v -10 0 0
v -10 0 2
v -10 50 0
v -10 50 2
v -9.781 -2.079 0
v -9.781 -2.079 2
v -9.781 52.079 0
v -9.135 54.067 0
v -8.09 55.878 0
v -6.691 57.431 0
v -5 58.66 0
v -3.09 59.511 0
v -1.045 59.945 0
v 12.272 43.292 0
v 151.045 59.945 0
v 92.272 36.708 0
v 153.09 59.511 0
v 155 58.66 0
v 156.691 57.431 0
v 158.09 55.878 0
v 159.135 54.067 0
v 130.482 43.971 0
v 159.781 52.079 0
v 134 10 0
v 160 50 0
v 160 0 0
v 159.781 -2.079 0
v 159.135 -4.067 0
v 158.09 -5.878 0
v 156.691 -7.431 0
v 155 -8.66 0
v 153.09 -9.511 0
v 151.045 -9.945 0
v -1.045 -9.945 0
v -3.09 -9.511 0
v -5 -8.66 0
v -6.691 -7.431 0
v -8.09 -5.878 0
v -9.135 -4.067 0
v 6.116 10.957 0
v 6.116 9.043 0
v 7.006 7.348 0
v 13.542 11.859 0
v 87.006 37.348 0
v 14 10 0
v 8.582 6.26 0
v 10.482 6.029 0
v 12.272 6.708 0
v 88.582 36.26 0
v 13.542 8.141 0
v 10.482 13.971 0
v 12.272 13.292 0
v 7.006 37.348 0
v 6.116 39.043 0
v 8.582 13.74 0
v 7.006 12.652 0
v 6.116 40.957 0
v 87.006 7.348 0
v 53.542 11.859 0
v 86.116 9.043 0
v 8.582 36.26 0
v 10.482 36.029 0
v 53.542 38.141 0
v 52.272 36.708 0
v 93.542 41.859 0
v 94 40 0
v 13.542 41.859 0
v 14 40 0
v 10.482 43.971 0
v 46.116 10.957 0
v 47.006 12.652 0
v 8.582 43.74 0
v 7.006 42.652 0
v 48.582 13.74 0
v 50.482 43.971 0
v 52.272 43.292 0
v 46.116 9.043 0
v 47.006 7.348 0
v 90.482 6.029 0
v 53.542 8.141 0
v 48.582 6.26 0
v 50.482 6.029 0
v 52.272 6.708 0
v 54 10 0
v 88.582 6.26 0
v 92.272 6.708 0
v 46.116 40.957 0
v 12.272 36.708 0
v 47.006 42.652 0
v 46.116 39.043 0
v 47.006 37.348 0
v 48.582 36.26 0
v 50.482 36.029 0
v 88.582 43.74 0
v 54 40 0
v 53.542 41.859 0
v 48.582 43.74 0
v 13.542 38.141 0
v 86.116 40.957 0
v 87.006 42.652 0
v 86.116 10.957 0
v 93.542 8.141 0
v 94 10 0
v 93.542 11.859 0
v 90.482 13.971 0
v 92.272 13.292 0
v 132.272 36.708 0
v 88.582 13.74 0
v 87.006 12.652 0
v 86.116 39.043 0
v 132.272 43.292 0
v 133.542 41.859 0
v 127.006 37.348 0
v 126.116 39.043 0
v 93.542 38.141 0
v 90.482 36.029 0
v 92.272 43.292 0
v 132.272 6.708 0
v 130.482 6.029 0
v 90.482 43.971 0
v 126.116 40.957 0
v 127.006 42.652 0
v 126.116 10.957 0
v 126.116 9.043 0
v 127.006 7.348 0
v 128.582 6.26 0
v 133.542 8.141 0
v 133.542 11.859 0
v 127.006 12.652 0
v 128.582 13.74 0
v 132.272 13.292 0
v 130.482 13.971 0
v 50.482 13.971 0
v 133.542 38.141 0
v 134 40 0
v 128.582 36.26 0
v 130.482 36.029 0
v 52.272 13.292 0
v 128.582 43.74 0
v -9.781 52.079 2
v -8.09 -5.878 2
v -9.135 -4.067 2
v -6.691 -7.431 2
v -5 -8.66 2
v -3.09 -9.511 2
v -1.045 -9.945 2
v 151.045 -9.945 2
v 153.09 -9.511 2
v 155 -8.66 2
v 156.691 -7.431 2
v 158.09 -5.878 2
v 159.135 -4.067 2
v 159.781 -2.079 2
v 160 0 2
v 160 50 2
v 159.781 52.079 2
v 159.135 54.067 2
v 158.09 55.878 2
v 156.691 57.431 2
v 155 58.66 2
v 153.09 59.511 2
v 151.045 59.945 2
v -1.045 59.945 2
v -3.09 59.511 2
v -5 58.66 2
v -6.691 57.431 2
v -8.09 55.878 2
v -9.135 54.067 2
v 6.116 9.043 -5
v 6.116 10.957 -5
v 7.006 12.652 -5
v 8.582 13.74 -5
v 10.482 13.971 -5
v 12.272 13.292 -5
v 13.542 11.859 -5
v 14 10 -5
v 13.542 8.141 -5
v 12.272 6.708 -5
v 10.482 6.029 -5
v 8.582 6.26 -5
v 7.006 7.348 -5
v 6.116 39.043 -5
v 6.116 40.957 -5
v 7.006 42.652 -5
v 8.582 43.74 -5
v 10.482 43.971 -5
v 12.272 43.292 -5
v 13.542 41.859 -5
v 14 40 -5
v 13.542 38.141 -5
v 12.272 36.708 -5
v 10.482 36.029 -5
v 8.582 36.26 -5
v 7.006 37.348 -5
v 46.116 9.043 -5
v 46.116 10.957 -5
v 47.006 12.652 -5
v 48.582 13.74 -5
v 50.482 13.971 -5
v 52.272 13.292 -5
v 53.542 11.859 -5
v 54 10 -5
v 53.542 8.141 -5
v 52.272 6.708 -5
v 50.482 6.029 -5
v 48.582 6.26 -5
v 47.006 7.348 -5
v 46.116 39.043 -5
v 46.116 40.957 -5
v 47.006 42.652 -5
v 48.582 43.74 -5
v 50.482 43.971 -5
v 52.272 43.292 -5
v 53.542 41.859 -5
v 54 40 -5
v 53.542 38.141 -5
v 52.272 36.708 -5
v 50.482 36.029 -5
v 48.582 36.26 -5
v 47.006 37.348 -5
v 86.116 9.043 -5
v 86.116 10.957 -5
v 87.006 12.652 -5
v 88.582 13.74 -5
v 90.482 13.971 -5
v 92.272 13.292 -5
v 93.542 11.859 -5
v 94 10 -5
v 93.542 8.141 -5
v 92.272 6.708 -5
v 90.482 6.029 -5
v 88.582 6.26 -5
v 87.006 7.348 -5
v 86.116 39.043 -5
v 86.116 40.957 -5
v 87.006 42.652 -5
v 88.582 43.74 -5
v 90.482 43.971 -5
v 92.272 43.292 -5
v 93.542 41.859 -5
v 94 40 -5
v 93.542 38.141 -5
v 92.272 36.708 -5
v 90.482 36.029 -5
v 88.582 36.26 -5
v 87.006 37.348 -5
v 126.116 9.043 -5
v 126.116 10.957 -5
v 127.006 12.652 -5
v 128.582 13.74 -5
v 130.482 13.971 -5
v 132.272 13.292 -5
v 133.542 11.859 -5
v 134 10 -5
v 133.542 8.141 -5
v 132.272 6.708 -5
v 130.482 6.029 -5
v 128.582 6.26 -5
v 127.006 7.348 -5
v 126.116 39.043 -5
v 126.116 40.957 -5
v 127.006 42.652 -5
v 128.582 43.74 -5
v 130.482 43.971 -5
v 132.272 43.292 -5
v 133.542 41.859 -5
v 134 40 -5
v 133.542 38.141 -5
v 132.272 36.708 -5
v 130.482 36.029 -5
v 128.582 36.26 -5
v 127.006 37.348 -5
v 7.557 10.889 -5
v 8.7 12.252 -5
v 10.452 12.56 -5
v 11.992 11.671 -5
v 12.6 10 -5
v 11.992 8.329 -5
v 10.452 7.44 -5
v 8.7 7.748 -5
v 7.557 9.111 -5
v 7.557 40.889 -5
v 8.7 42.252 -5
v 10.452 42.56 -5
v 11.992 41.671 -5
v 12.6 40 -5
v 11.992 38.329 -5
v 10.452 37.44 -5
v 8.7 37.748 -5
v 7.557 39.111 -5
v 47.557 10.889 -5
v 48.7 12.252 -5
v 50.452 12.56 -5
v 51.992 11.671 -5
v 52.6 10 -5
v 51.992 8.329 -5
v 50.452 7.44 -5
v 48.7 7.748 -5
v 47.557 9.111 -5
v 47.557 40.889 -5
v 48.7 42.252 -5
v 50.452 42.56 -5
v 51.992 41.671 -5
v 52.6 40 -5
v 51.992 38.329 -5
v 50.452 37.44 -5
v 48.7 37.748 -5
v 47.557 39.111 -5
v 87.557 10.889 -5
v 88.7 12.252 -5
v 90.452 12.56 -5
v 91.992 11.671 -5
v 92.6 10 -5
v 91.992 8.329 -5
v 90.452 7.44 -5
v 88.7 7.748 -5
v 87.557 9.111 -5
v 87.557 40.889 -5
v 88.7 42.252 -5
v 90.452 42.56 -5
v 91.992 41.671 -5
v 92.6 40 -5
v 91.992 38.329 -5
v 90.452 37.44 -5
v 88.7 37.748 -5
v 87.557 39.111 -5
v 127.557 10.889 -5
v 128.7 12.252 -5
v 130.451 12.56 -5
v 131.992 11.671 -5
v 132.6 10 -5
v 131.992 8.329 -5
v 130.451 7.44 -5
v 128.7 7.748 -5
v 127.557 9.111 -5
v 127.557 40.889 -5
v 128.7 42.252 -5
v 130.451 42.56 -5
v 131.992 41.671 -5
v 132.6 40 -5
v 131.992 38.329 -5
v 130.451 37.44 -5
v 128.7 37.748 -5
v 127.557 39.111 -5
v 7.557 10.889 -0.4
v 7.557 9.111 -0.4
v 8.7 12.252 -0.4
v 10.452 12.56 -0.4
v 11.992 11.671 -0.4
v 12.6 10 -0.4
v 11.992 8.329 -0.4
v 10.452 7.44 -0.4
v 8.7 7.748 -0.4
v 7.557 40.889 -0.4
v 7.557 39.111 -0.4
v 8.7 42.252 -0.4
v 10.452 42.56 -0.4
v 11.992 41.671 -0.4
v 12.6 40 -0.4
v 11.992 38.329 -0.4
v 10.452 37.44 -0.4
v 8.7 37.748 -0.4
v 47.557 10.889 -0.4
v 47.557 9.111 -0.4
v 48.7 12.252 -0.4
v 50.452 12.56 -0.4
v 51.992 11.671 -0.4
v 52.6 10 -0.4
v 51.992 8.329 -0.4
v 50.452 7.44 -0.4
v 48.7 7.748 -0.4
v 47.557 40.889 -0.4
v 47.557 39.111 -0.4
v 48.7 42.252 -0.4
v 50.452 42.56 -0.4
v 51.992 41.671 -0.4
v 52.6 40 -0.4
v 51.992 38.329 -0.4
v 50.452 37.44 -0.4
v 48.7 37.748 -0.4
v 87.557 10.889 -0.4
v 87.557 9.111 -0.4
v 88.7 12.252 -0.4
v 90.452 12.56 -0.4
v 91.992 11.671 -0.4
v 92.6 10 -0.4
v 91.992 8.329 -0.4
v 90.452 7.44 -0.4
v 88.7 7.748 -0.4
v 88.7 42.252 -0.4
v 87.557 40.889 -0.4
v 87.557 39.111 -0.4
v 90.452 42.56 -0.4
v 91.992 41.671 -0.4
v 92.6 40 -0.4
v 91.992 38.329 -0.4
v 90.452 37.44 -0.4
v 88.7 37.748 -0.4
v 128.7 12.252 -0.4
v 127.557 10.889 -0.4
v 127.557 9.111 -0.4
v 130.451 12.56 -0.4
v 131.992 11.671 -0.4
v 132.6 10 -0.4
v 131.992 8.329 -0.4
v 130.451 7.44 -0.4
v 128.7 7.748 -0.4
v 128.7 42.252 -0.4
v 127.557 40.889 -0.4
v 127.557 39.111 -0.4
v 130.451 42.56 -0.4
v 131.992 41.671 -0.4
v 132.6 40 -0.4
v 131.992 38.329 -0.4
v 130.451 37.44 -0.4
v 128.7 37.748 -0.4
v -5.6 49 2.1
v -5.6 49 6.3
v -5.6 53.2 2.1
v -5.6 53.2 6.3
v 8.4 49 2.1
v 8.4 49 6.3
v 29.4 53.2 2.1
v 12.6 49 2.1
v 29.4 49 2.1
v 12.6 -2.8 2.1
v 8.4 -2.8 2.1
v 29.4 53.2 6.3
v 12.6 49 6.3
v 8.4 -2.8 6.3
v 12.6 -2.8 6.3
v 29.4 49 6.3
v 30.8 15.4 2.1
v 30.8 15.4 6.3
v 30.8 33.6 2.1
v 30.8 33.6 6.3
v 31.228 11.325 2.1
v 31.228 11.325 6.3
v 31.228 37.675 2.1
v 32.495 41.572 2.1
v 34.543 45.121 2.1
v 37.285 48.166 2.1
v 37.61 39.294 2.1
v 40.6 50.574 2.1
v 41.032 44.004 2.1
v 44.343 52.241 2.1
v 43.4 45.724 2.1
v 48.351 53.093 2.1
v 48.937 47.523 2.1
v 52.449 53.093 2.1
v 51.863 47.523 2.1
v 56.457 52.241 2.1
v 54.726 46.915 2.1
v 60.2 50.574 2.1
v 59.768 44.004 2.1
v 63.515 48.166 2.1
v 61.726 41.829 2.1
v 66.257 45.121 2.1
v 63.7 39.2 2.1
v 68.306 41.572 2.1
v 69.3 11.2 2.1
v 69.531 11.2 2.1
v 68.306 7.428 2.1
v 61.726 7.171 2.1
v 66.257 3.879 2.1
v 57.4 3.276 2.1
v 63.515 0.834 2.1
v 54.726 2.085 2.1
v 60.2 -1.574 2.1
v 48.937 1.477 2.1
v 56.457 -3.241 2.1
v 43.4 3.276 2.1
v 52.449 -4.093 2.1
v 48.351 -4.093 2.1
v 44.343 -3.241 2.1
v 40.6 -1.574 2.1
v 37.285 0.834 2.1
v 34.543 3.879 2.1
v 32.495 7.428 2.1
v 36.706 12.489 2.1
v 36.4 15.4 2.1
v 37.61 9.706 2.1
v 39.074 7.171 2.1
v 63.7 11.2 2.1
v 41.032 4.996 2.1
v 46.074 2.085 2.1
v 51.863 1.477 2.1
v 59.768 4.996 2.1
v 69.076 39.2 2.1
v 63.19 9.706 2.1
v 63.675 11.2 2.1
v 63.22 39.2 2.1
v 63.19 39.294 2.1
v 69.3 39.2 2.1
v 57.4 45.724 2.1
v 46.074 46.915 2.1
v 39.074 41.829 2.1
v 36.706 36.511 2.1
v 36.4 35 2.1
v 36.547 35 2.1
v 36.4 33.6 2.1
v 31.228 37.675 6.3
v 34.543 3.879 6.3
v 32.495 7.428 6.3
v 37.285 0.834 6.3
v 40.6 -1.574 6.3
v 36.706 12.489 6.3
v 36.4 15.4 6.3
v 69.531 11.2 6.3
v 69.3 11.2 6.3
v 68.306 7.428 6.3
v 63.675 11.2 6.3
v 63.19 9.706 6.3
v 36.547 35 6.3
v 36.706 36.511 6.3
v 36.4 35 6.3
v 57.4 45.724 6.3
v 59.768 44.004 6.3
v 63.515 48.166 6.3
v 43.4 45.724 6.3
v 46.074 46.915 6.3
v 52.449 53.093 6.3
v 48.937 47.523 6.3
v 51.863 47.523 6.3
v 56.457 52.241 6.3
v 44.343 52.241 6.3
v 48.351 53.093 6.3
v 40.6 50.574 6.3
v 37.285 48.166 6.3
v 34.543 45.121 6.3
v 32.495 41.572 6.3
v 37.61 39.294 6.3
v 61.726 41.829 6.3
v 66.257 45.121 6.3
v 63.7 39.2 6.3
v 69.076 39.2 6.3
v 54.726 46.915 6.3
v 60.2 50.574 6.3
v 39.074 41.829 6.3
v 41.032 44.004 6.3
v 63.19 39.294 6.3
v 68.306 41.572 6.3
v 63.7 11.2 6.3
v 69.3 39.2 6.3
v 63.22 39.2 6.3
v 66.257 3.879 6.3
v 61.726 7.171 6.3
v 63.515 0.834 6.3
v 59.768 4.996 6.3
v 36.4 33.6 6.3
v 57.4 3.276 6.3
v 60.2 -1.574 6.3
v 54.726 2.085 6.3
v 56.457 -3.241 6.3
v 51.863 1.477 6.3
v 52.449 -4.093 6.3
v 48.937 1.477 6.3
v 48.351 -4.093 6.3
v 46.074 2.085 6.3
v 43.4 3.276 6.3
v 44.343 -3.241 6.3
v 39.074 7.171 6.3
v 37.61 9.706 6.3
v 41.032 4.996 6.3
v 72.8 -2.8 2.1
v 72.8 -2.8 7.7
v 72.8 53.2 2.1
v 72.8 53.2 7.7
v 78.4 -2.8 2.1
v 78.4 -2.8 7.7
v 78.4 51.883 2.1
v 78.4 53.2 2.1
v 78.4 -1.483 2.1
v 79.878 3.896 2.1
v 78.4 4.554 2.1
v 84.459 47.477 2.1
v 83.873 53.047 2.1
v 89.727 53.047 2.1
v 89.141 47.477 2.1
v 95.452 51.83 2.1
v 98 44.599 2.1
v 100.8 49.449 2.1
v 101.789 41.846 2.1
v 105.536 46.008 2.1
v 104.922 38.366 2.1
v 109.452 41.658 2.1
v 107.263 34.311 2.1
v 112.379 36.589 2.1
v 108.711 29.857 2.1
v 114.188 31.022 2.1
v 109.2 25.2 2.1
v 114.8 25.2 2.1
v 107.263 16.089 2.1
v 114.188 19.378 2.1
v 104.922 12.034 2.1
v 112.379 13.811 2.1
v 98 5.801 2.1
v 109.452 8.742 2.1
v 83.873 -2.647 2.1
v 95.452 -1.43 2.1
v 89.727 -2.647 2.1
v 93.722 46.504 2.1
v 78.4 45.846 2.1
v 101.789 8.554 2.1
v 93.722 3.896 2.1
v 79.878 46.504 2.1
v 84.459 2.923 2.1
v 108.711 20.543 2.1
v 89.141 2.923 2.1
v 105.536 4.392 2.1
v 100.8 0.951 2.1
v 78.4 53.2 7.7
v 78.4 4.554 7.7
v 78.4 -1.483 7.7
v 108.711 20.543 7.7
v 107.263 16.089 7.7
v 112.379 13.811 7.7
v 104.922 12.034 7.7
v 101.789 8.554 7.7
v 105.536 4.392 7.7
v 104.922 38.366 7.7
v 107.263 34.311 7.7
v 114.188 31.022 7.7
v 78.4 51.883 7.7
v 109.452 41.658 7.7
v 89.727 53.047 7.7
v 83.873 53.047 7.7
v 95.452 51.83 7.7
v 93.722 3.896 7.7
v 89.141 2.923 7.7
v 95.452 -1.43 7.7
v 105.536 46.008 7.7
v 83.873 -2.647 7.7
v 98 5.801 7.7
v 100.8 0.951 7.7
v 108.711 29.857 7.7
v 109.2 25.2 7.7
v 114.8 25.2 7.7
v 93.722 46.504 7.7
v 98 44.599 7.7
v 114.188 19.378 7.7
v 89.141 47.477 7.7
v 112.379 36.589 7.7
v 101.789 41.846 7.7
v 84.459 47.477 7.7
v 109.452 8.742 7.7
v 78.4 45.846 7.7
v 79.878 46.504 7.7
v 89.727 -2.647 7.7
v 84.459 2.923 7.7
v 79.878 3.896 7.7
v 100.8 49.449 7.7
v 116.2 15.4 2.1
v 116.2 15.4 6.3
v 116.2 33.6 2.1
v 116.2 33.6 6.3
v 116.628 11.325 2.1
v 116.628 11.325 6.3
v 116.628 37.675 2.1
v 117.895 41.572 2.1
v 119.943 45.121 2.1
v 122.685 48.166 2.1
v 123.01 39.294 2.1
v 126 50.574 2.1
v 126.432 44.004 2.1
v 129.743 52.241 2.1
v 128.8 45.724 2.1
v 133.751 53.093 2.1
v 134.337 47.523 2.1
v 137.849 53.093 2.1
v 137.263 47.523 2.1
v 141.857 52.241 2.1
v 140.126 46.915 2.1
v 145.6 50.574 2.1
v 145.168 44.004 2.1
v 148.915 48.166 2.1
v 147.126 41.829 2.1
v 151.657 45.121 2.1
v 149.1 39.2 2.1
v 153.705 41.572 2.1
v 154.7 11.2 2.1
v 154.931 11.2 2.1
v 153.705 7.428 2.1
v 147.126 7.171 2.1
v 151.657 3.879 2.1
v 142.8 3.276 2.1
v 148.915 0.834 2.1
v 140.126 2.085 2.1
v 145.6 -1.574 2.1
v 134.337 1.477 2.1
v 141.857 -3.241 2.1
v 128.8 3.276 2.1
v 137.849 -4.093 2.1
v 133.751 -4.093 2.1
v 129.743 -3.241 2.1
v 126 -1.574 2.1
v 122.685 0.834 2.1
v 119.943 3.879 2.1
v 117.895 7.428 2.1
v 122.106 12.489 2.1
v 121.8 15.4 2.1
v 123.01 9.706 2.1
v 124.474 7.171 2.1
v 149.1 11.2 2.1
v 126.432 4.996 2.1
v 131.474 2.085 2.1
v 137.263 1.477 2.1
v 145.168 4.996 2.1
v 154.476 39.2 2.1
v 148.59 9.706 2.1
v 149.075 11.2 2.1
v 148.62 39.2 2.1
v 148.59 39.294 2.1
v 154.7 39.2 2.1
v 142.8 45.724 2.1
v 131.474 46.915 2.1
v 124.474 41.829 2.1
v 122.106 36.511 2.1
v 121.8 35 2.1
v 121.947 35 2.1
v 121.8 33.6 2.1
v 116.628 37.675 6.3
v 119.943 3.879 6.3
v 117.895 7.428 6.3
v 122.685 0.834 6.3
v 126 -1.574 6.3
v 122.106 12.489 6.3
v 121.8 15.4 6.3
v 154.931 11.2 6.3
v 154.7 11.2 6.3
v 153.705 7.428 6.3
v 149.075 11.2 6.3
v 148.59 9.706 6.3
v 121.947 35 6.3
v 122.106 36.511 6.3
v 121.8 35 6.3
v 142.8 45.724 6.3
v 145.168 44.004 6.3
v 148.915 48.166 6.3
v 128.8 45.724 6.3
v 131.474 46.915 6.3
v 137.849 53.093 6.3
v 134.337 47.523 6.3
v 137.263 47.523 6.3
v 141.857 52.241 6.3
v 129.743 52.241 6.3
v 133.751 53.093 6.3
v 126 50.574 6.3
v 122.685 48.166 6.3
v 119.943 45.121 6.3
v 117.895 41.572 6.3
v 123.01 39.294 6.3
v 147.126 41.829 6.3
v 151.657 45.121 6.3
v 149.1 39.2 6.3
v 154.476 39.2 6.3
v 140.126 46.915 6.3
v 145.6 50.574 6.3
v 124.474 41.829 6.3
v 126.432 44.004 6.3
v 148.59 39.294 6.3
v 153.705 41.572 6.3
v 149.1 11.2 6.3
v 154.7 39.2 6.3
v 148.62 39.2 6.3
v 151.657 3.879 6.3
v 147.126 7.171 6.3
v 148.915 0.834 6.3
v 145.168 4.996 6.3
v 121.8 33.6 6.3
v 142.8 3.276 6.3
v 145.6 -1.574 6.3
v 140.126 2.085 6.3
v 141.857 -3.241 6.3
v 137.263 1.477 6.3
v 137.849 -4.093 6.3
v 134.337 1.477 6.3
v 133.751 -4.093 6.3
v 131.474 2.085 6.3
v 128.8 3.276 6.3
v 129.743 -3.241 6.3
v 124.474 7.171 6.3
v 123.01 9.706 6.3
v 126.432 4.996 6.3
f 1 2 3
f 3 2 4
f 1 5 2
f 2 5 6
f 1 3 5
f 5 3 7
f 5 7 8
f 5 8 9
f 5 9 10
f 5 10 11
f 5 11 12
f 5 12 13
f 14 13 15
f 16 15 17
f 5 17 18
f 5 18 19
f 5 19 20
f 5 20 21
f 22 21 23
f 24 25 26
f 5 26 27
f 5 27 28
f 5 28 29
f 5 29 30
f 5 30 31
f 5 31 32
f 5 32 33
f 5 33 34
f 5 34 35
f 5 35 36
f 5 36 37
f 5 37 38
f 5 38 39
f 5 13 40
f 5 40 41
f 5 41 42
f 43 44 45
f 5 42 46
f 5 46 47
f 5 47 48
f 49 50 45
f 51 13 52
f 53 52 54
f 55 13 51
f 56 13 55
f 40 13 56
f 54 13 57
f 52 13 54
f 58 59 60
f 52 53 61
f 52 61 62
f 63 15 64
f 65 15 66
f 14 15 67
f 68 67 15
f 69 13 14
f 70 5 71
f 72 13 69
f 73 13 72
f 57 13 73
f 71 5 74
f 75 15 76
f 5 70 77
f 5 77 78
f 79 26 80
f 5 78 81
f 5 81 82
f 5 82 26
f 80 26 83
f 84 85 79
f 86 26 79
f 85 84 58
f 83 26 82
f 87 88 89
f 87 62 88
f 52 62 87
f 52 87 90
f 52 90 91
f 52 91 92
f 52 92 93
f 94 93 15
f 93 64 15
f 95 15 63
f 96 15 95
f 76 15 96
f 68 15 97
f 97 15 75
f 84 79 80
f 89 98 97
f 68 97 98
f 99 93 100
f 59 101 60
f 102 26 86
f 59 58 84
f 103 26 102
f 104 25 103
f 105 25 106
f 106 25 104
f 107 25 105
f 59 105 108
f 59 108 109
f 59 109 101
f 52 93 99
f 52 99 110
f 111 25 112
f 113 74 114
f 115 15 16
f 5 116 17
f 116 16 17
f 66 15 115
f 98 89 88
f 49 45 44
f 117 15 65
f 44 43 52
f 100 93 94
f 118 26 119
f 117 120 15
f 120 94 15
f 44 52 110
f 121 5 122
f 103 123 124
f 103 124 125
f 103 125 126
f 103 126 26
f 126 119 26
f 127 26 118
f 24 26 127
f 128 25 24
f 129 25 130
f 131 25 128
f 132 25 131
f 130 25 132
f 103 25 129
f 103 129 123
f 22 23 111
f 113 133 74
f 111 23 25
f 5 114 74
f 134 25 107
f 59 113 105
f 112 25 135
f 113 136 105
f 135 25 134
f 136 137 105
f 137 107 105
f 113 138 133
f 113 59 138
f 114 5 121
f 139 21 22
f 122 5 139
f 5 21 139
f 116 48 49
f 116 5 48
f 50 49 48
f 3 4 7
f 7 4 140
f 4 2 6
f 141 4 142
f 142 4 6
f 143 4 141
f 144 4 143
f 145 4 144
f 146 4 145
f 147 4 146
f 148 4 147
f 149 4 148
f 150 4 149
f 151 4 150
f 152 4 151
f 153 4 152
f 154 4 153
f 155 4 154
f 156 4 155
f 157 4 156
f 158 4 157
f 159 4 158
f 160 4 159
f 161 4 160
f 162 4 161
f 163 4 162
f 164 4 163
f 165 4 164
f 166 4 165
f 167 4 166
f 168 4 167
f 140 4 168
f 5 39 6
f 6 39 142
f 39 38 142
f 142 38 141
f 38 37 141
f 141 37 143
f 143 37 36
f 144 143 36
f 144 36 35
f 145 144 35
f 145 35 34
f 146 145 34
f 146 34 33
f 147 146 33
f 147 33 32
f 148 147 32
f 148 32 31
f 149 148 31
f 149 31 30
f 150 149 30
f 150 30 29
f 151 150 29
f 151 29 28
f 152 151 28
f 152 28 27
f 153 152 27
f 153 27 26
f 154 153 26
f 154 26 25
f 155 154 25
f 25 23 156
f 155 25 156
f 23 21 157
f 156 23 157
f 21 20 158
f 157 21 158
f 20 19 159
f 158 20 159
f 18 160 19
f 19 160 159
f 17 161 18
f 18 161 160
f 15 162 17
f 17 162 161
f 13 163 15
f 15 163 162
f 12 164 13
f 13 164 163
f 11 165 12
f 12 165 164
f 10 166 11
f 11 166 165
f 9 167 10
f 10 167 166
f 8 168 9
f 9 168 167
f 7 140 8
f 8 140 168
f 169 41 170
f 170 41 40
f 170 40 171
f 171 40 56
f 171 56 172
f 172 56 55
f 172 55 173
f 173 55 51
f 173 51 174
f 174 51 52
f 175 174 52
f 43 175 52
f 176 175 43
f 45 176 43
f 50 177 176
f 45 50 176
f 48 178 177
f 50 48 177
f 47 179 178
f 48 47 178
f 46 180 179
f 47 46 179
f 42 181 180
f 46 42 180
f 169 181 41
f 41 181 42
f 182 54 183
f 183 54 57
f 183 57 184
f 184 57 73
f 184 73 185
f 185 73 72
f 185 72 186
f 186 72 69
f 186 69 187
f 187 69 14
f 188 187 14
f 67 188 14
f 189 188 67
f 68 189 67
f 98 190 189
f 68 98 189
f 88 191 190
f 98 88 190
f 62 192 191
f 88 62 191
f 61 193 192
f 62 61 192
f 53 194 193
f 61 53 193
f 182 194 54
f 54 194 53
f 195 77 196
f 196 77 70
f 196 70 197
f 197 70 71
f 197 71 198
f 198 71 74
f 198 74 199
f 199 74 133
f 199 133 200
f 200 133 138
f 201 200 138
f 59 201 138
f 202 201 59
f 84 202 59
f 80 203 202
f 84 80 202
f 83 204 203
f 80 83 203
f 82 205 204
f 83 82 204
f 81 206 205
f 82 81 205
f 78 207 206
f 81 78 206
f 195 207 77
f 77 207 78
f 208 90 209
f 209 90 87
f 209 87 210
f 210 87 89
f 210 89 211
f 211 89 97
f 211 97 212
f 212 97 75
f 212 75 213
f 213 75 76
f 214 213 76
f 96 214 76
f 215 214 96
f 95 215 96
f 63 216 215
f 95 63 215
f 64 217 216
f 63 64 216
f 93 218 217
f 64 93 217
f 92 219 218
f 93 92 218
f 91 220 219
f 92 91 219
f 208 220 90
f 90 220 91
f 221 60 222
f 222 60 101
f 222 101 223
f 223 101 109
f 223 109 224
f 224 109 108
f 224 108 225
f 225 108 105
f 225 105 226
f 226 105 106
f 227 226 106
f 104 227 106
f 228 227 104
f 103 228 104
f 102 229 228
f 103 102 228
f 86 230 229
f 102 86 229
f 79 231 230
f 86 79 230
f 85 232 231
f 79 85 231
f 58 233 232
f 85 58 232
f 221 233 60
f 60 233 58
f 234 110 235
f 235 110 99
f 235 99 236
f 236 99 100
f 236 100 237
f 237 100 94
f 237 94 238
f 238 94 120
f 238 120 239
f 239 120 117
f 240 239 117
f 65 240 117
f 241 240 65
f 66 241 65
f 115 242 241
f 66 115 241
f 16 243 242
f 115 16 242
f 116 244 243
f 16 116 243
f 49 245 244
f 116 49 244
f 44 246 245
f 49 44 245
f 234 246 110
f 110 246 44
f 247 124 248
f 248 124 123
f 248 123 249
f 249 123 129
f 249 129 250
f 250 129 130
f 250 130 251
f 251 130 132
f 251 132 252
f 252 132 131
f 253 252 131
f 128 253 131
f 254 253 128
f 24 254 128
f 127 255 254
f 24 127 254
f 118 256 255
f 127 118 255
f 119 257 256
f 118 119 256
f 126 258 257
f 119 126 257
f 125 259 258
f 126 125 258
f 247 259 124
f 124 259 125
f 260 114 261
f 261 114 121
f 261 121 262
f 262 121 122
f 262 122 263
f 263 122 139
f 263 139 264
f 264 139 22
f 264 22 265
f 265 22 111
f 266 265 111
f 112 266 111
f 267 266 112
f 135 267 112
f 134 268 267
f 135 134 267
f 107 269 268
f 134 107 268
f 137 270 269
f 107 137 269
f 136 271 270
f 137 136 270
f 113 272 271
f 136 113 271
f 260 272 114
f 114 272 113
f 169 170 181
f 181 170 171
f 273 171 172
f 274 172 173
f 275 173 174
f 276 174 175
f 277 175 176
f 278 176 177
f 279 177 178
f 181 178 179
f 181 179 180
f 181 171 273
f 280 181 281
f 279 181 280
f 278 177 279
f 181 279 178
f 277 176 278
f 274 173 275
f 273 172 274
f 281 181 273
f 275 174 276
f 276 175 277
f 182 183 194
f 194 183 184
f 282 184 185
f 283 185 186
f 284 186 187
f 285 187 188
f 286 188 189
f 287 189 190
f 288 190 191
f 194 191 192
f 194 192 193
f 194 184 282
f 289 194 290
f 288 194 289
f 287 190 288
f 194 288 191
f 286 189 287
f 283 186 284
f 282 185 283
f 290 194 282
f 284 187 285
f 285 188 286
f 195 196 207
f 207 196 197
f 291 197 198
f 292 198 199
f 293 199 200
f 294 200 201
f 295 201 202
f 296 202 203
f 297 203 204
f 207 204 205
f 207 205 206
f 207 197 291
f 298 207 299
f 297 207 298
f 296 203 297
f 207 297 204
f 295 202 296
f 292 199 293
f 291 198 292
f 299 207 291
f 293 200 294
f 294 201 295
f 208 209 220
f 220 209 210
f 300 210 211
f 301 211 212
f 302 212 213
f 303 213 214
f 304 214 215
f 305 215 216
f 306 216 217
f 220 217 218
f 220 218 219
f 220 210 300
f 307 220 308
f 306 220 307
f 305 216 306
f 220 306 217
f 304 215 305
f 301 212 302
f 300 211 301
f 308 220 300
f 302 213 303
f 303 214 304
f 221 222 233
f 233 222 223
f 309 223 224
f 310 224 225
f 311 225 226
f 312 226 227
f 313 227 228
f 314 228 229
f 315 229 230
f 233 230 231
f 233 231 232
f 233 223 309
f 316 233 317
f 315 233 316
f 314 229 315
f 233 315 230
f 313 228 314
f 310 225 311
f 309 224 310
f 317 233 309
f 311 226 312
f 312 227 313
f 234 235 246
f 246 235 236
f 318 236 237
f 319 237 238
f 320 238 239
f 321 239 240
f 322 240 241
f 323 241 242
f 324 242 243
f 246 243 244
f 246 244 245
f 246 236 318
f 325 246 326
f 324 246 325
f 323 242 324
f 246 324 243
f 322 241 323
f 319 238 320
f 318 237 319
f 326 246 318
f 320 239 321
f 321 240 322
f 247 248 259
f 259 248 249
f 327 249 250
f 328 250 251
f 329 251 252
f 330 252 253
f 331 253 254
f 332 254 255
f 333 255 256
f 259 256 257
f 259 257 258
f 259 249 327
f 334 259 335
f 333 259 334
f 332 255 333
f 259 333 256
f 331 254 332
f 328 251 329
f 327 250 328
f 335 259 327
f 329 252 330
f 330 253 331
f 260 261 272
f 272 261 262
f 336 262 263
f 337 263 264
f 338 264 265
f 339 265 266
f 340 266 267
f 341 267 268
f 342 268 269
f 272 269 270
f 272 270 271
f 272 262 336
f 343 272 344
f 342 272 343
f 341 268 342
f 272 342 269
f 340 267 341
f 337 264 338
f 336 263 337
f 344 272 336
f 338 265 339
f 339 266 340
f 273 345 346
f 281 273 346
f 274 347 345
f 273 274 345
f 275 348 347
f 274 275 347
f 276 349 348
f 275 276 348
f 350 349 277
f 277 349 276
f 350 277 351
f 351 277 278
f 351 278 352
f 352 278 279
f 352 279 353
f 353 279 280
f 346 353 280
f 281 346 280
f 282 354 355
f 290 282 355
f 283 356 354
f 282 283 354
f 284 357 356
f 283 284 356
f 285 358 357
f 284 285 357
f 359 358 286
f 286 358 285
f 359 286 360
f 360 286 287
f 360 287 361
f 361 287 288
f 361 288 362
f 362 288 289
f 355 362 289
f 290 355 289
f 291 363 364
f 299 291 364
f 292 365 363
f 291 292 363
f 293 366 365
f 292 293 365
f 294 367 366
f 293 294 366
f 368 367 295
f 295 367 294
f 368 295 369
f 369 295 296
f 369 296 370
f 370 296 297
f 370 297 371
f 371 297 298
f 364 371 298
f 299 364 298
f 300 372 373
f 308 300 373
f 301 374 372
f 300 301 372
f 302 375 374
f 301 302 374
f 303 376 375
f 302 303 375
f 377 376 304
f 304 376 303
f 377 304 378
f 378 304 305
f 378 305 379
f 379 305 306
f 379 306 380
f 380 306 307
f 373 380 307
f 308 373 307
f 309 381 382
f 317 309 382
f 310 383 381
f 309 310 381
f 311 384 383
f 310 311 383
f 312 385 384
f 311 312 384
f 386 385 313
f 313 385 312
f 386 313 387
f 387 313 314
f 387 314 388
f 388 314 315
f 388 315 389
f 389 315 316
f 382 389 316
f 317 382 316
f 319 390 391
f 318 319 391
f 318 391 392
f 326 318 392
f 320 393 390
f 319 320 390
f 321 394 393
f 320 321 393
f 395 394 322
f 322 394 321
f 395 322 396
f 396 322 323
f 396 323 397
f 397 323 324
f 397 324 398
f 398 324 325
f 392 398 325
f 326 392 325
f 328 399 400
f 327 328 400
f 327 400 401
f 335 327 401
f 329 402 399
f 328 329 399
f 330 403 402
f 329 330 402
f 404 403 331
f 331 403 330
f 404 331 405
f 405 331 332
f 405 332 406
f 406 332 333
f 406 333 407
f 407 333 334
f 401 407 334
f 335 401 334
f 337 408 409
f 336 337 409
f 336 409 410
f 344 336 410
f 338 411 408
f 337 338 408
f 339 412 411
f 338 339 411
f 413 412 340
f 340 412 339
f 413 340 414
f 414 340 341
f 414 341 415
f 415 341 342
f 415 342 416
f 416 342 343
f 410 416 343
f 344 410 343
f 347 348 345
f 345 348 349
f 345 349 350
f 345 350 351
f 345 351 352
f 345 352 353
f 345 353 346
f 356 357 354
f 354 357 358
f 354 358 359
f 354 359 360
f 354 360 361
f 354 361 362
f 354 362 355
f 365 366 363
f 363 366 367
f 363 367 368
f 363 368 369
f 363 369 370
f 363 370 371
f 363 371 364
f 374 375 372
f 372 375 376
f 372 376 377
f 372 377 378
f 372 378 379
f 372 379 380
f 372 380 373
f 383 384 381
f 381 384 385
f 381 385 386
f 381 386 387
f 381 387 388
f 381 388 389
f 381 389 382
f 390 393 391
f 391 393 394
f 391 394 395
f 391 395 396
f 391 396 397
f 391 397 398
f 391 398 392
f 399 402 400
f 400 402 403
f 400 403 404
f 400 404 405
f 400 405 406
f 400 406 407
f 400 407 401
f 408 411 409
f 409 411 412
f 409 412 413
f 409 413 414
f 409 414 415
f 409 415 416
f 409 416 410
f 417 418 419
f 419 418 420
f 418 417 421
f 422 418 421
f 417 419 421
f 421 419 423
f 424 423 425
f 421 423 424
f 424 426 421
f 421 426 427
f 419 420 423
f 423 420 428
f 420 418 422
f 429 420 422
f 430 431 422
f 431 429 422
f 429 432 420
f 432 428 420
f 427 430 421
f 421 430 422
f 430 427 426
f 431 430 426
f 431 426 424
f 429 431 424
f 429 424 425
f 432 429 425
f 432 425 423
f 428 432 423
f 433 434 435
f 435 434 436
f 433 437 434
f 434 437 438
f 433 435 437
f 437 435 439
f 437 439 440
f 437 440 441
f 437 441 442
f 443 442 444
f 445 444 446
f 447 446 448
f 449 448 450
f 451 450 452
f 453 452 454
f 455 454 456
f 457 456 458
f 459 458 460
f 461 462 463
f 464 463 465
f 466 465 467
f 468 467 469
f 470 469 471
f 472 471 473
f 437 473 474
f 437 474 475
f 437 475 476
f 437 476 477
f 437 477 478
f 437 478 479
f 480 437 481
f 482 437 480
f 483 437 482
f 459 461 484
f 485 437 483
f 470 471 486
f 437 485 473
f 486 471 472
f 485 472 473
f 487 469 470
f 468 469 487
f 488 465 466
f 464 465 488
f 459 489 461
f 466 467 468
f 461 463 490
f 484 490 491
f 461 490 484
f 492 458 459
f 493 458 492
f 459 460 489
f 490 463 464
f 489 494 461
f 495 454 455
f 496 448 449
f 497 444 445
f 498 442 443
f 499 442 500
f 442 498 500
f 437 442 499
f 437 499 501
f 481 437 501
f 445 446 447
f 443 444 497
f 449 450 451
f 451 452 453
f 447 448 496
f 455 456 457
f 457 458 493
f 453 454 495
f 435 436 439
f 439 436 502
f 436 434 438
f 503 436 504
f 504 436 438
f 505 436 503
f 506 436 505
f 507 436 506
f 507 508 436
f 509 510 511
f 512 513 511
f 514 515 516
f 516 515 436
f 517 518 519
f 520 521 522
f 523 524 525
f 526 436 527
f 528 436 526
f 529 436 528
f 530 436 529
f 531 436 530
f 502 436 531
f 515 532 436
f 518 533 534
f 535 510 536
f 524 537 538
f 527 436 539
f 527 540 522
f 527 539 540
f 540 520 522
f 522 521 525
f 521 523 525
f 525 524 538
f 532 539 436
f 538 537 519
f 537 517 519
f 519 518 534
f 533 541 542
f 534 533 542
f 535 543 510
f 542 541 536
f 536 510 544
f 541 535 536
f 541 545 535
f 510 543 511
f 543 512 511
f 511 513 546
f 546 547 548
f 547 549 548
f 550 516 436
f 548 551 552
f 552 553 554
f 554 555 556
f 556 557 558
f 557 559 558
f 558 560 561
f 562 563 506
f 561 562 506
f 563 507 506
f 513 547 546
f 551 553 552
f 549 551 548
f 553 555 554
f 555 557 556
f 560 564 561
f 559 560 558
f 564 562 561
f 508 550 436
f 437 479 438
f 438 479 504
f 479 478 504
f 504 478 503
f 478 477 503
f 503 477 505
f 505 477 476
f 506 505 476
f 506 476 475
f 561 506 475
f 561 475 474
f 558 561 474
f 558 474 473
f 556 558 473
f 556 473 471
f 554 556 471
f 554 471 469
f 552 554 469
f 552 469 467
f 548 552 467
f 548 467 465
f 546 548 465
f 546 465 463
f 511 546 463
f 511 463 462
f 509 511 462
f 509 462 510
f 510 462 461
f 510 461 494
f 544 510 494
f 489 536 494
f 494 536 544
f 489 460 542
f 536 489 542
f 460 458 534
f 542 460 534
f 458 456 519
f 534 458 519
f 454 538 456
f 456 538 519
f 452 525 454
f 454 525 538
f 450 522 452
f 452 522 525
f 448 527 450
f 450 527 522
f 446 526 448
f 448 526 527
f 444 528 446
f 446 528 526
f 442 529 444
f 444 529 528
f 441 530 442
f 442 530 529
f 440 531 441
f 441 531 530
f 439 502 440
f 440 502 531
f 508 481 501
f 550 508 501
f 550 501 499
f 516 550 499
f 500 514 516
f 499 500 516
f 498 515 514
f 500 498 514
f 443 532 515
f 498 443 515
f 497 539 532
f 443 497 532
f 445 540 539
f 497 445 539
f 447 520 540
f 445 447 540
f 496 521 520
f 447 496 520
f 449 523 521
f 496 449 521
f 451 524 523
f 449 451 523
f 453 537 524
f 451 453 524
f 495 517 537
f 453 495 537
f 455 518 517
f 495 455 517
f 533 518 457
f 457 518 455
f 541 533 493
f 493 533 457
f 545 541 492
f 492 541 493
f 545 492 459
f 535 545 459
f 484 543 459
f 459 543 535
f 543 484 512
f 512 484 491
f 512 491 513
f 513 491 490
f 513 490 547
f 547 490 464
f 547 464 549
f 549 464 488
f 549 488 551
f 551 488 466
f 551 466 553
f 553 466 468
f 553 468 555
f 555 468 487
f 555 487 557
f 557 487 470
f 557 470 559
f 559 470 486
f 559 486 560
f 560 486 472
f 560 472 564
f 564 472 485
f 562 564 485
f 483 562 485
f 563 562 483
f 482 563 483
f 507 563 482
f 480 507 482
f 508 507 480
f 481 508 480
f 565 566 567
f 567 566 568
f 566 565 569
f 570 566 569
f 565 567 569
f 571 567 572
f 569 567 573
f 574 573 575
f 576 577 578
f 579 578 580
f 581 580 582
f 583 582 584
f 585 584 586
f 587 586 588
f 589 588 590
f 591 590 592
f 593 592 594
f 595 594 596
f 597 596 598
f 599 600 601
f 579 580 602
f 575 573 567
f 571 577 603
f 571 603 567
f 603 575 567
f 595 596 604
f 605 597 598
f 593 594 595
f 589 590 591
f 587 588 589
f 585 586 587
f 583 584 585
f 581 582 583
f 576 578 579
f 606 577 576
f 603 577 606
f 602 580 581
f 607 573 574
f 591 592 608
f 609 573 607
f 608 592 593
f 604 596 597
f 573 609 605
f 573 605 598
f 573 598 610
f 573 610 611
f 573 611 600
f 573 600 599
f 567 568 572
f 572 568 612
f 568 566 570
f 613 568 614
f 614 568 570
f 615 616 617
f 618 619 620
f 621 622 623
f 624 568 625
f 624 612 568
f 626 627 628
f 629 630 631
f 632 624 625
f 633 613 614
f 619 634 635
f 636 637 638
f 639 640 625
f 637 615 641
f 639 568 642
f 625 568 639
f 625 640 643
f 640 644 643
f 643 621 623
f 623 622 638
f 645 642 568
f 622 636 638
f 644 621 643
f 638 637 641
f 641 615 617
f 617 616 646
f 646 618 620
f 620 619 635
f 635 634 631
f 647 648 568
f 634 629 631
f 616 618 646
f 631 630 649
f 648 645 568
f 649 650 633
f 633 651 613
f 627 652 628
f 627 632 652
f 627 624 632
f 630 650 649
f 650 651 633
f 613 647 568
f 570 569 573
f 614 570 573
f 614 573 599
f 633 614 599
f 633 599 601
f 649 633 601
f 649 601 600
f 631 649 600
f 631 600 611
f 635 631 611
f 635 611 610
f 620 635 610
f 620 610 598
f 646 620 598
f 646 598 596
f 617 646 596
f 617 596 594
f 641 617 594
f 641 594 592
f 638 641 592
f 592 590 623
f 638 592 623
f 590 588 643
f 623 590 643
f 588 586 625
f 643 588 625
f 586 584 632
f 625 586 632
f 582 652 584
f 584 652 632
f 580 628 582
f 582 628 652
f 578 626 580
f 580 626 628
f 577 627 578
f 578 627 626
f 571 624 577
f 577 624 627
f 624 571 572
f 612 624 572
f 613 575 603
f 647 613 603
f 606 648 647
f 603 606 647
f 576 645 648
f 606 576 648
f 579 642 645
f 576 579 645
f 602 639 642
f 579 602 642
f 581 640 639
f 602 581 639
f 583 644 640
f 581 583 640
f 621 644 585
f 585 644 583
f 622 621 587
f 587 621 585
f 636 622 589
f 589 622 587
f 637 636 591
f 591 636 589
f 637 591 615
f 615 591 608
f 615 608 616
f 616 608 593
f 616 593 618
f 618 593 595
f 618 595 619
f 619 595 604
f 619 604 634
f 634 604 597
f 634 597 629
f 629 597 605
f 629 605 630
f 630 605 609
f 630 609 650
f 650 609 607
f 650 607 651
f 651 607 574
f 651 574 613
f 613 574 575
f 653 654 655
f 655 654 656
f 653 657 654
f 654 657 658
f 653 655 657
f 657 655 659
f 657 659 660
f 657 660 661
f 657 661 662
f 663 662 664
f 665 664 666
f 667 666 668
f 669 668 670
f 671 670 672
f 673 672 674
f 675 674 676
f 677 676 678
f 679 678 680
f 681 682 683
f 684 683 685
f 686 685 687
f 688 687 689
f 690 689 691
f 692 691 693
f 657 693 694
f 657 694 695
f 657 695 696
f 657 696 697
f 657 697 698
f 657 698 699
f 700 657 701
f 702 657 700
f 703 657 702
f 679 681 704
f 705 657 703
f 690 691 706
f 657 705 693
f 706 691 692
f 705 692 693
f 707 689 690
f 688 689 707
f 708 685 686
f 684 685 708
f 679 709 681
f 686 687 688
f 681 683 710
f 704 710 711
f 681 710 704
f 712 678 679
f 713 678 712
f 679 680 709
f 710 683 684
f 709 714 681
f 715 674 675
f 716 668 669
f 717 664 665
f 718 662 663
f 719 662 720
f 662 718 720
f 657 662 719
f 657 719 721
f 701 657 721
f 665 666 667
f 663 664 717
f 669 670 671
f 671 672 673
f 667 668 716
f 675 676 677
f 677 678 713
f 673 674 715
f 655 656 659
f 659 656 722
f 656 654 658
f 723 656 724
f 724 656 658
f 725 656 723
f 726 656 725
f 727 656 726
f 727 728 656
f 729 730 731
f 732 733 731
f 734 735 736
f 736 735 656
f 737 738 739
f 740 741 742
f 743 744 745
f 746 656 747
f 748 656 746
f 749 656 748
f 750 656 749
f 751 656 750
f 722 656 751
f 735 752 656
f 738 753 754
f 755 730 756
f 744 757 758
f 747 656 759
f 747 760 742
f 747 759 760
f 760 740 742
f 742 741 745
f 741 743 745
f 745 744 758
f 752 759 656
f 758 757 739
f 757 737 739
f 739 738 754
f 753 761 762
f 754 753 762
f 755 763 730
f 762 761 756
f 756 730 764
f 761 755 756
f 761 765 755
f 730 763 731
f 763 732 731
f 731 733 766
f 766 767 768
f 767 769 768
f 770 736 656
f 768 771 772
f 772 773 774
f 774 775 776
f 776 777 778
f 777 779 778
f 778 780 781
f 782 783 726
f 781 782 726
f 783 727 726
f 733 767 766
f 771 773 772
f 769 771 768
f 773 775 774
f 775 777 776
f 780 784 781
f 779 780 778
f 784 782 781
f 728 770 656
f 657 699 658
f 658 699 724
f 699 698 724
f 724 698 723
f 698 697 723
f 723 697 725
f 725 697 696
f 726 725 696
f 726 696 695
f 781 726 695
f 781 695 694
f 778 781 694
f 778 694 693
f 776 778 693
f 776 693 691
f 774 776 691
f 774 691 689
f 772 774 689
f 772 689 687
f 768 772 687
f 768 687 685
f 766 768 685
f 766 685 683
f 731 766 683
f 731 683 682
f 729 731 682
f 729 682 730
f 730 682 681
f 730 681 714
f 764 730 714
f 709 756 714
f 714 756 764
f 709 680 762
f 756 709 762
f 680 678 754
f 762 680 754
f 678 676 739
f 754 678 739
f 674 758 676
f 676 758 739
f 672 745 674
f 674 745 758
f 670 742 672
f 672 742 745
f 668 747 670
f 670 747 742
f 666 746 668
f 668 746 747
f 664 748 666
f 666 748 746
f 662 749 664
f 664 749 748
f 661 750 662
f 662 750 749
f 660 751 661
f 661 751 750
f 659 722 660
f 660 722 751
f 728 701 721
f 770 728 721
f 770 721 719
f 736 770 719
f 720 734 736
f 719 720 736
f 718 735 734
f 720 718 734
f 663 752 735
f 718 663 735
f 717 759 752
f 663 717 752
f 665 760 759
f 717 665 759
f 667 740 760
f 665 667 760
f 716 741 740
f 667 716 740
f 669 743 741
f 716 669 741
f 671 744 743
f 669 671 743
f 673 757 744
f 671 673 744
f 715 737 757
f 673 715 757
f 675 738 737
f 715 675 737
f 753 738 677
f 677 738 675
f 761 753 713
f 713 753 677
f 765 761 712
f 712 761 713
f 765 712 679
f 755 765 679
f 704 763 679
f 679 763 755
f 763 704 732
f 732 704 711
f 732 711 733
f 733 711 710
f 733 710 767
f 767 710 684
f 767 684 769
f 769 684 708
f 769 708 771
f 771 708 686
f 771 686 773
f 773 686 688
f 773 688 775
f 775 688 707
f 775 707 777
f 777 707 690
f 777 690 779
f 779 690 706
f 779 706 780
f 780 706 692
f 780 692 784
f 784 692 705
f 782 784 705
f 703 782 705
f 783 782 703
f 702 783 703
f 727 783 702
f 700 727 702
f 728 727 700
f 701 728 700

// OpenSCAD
minkowski(){
 cube([150,50,1]); cylinder(1,10,10);
}
difference(){  
 union(){  

  
  translate([90,10,-5]) cylinder(5,4,4);
  translate([90,40,-5]) cylinder(5,4,4);
  translate([10,10,-5]) cylinder(5,4,4);
  translate([10,40,-5]) cylinder(5,4,4);
  translate([50,10,-5]) cylinder(5,4,4);
  translate([50,40,-5]) cylinder(5,4,4);
  translate([130,10,-5]) cylinder(5,4,4);
  translate([130,40,-5]) cylinder(5,4,4);
}
  

  #translate([10,10,-5.4]) cylinder(5,2.6,2.6);
  #translate([10,40,-5.4]) cylinder(5,2.6,2.6);
  #translate([50,10,-5.4]) cylinder(5,2.6,2.6);
  #translate([50,40,-5.4]) cylinder(5,2.6,2.6);
  #translate([90,10,-5.4]) cylinder(5,2.6,2.6);
  #translate([90,40,-5.4]) cylinder(5,2.6,2.6);
  #translate([130,10,-5.4]) cylinder(5,2.6,2.6);
  #translate([130,40,-5.4]) cylinder(5,2.6,2.6);
  }
//T
scale(1.4){
translate([6,-2,1.5])
union(){ 
cube([3,40,3]);
 translate([-10,37,0]) cube([25,3,3]);
}
}

//О
scale(1.4){
translate([-4,-2,1.5])
union(){
  translate([49.5,10,0]) cube([4,20,3]);
  translate([26,13,0]) cube([4,13,3]);
difference(){
union(){
	
  difference(){
  translate([40,26,0]) cylinder(3,14,14);
  translate([40,26,-1]) cylinder(5,10,10);
  translate([33,10,-1]) cube([20,10,5]);

}

difference(){
  translate([40,13,0]) cylinder(3,14,14);
  translate([40,13,-1]) cylinder(5,10,10);
  translate([32,17,-1]) cube([19,10,5]);
  translate([40,17,-1]) cube(20);
}
}
  translate([30,13,-1]) cube([5,14,5]);
  translate([42,10,-1]) cube(20);
}
}
}

//D
scale(1.4){
translate([57,-2,1.5])
union(){ 
 translate([-5,0,0]) cube([4,40,4]);
difference(){
 translate([5,20,0]) cylinder(4,20,20);
 translate([5,20,-1]) cylinder(6,16,16);
 translate([-15,0,-1]) cube([10,40,6]);
}
}
}

//О
scale(1.4){
translate([57,-2,1.5])
union(){
  translate([49.5,10,0]) cube([4,20,3]);
  translate([26,13,0]) cube([4,13,3]);
difference(){
union(){
	
  difference(){
  translate([40,26,0]) cylinder(3,14,14);
  translate([40,26,-1]) cylinder(5,10,10);
  translate([33,10,-1]) cube([20,10,5]);

}

difference(){
  translate([40,13,0]) cylinder(3,14,14);
  translate([40,13,-1]) cylinder(5,10,10);
  translate([32,17,-1]) cube([19,10,5]);
  translate([40,17,-1]) cube(20);
}
}
  translate([30,13,-1]) cube([5,14,5]);
  translate([42,10,-1]) cube(20);
}
}
}
